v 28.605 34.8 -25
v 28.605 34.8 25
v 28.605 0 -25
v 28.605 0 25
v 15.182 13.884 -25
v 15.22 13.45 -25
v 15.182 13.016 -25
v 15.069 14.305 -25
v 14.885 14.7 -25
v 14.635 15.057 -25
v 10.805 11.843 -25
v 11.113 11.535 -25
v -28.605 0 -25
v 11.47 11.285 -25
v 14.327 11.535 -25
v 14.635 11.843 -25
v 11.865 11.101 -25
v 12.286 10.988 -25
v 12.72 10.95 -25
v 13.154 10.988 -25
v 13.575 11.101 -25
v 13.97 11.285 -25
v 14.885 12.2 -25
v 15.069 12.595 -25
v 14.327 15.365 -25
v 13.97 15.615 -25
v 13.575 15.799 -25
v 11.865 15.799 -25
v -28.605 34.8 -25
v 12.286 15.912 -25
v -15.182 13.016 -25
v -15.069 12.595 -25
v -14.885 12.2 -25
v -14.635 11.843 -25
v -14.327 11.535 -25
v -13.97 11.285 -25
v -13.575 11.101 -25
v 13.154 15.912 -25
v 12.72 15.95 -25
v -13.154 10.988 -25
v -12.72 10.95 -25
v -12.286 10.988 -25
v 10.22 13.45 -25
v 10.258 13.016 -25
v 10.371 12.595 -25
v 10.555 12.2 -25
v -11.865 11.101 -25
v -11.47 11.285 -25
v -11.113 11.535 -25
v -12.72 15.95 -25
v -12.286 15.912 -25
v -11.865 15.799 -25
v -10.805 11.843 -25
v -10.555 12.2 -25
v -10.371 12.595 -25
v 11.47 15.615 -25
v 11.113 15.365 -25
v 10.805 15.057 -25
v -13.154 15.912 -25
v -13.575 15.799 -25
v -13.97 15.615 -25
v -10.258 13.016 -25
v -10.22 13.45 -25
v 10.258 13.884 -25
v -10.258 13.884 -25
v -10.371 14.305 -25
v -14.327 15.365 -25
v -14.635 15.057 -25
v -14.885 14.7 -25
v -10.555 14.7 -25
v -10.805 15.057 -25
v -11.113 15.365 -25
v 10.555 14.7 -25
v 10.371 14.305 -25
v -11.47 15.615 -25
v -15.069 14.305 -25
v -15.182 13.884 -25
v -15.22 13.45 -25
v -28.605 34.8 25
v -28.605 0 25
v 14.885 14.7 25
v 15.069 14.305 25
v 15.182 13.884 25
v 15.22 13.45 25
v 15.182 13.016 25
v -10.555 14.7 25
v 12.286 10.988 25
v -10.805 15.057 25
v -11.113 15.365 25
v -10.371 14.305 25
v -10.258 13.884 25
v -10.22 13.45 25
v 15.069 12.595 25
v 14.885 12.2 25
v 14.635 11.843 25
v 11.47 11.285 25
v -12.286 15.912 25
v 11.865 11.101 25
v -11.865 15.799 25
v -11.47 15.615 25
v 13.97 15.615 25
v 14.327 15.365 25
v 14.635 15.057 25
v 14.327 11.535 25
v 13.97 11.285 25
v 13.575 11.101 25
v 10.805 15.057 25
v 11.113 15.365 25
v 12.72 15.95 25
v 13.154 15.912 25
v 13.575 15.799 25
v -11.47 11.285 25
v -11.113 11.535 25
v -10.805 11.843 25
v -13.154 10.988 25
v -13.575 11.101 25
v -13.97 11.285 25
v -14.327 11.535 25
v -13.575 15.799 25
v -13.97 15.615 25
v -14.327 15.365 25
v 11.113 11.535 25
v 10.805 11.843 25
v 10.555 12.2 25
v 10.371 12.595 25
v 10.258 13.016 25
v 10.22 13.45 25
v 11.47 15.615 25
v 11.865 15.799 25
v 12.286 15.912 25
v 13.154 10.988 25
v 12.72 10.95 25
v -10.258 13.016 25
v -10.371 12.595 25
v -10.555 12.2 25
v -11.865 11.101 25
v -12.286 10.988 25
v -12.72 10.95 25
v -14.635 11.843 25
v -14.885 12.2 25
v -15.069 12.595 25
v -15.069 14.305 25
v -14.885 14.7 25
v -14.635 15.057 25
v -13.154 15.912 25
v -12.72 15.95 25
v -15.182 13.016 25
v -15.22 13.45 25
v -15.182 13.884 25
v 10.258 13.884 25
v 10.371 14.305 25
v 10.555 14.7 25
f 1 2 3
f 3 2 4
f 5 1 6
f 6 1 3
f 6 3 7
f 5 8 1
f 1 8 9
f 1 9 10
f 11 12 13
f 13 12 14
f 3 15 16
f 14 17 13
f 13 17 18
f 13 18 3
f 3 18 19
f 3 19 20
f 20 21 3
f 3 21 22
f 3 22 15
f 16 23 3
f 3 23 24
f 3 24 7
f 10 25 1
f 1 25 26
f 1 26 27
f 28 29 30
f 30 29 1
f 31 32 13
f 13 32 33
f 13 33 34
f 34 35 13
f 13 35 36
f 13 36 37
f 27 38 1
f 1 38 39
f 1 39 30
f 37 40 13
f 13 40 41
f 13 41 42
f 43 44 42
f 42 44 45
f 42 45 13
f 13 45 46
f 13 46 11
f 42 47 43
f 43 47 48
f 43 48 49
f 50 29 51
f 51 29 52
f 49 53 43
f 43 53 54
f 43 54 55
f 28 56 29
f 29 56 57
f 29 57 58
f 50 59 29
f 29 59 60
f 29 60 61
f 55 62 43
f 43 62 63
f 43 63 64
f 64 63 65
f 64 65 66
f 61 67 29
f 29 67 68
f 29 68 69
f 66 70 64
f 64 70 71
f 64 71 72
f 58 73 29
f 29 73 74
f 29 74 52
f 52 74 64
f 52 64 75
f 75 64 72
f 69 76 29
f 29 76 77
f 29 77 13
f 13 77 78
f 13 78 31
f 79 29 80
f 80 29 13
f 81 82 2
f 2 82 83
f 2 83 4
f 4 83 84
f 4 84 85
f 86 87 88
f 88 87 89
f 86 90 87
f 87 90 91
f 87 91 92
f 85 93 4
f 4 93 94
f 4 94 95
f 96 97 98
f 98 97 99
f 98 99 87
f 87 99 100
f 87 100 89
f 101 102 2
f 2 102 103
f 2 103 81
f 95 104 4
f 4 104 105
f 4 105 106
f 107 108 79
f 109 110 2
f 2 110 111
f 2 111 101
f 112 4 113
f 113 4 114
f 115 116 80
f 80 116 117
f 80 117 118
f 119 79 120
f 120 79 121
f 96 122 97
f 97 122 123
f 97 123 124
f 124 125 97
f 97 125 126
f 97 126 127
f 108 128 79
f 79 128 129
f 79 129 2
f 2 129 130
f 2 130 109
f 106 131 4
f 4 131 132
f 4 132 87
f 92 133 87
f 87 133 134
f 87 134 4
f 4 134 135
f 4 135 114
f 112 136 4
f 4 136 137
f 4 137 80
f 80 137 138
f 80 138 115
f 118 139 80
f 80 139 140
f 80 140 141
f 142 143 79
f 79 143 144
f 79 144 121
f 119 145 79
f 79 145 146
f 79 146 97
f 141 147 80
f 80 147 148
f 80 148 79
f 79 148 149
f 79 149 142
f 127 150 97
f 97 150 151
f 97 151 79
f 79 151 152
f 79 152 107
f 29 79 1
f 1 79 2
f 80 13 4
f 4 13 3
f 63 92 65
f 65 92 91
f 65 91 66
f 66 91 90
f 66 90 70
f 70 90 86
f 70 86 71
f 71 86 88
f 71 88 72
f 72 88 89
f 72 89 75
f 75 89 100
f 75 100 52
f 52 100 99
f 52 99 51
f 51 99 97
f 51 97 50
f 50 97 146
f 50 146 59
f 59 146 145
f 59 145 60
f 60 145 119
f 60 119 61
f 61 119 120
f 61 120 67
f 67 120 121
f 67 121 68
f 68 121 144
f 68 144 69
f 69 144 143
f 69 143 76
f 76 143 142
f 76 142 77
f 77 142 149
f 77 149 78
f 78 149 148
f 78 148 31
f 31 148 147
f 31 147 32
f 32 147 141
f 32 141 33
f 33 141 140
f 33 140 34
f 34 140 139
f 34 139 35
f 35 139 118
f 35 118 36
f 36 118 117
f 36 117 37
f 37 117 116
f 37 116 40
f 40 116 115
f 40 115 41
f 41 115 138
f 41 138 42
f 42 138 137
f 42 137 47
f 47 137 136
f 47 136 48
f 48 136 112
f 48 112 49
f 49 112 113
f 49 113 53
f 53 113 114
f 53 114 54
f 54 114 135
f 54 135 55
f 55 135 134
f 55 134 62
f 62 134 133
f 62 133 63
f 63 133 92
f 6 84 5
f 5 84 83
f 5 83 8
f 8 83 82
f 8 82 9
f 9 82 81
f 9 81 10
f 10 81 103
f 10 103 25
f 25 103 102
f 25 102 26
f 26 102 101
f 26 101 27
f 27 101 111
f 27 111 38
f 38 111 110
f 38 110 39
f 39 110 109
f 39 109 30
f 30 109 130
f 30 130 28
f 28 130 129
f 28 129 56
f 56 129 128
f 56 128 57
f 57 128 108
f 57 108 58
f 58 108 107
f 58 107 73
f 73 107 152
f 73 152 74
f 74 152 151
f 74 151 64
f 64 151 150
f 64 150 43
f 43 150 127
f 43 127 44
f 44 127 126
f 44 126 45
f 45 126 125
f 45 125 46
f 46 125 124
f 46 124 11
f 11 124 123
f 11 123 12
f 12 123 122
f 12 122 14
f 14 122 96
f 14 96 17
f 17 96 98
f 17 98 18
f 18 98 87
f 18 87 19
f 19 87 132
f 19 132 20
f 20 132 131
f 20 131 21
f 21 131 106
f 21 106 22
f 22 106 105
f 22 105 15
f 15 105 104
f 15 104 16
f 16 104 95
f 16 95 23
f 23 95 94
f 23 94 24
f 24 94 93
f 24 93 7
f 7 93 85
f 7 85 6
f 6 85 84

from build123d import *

# Parameters (mm, degrees)
SKETCH1_W           = 57.21
SKETCH1_H           = 50
BOSS_EXTRUDE1_DEPTH = 34.8
SKETCH2_R           = 2.5
CUT_EXTRUDE1_DEPTH  = 51


with BuildPart() as part:
    # Sketch1 → Boss-Extrude1 (new body)
    with BuildSketch(Plane(origin=(0, 0, 0), x_dir=(1, 0, 0), z_dir=(0, 1, 0))):
        Rectangle(SKETCH1_W, SKETCH1_H)
    extrude(amount=BOSS_EXTRUDE1_DEPTH)

    # Sketch2 → Cut-Extrude1 (cut, through all)
    with BuildSketch(Plane.XY.offset(25)):
        with Locations((-12.72, 13.45)):
            Circle(SKETCH2_R)
    cut_extrude1 = extrude(amount=-CUT_EXTRUDE1_DEPTH, mode=Mode.SUBTRACT)

    # Mirror1: Cut-Extrude1 across plane
    add(cut_extrude1.mirror(Plane(origin=(0, 0, 0), x_dir=(0, 0, 1), z_dir=(1, 0, 0))), mode=Mode.SUBTRACT)


solid = part.part
